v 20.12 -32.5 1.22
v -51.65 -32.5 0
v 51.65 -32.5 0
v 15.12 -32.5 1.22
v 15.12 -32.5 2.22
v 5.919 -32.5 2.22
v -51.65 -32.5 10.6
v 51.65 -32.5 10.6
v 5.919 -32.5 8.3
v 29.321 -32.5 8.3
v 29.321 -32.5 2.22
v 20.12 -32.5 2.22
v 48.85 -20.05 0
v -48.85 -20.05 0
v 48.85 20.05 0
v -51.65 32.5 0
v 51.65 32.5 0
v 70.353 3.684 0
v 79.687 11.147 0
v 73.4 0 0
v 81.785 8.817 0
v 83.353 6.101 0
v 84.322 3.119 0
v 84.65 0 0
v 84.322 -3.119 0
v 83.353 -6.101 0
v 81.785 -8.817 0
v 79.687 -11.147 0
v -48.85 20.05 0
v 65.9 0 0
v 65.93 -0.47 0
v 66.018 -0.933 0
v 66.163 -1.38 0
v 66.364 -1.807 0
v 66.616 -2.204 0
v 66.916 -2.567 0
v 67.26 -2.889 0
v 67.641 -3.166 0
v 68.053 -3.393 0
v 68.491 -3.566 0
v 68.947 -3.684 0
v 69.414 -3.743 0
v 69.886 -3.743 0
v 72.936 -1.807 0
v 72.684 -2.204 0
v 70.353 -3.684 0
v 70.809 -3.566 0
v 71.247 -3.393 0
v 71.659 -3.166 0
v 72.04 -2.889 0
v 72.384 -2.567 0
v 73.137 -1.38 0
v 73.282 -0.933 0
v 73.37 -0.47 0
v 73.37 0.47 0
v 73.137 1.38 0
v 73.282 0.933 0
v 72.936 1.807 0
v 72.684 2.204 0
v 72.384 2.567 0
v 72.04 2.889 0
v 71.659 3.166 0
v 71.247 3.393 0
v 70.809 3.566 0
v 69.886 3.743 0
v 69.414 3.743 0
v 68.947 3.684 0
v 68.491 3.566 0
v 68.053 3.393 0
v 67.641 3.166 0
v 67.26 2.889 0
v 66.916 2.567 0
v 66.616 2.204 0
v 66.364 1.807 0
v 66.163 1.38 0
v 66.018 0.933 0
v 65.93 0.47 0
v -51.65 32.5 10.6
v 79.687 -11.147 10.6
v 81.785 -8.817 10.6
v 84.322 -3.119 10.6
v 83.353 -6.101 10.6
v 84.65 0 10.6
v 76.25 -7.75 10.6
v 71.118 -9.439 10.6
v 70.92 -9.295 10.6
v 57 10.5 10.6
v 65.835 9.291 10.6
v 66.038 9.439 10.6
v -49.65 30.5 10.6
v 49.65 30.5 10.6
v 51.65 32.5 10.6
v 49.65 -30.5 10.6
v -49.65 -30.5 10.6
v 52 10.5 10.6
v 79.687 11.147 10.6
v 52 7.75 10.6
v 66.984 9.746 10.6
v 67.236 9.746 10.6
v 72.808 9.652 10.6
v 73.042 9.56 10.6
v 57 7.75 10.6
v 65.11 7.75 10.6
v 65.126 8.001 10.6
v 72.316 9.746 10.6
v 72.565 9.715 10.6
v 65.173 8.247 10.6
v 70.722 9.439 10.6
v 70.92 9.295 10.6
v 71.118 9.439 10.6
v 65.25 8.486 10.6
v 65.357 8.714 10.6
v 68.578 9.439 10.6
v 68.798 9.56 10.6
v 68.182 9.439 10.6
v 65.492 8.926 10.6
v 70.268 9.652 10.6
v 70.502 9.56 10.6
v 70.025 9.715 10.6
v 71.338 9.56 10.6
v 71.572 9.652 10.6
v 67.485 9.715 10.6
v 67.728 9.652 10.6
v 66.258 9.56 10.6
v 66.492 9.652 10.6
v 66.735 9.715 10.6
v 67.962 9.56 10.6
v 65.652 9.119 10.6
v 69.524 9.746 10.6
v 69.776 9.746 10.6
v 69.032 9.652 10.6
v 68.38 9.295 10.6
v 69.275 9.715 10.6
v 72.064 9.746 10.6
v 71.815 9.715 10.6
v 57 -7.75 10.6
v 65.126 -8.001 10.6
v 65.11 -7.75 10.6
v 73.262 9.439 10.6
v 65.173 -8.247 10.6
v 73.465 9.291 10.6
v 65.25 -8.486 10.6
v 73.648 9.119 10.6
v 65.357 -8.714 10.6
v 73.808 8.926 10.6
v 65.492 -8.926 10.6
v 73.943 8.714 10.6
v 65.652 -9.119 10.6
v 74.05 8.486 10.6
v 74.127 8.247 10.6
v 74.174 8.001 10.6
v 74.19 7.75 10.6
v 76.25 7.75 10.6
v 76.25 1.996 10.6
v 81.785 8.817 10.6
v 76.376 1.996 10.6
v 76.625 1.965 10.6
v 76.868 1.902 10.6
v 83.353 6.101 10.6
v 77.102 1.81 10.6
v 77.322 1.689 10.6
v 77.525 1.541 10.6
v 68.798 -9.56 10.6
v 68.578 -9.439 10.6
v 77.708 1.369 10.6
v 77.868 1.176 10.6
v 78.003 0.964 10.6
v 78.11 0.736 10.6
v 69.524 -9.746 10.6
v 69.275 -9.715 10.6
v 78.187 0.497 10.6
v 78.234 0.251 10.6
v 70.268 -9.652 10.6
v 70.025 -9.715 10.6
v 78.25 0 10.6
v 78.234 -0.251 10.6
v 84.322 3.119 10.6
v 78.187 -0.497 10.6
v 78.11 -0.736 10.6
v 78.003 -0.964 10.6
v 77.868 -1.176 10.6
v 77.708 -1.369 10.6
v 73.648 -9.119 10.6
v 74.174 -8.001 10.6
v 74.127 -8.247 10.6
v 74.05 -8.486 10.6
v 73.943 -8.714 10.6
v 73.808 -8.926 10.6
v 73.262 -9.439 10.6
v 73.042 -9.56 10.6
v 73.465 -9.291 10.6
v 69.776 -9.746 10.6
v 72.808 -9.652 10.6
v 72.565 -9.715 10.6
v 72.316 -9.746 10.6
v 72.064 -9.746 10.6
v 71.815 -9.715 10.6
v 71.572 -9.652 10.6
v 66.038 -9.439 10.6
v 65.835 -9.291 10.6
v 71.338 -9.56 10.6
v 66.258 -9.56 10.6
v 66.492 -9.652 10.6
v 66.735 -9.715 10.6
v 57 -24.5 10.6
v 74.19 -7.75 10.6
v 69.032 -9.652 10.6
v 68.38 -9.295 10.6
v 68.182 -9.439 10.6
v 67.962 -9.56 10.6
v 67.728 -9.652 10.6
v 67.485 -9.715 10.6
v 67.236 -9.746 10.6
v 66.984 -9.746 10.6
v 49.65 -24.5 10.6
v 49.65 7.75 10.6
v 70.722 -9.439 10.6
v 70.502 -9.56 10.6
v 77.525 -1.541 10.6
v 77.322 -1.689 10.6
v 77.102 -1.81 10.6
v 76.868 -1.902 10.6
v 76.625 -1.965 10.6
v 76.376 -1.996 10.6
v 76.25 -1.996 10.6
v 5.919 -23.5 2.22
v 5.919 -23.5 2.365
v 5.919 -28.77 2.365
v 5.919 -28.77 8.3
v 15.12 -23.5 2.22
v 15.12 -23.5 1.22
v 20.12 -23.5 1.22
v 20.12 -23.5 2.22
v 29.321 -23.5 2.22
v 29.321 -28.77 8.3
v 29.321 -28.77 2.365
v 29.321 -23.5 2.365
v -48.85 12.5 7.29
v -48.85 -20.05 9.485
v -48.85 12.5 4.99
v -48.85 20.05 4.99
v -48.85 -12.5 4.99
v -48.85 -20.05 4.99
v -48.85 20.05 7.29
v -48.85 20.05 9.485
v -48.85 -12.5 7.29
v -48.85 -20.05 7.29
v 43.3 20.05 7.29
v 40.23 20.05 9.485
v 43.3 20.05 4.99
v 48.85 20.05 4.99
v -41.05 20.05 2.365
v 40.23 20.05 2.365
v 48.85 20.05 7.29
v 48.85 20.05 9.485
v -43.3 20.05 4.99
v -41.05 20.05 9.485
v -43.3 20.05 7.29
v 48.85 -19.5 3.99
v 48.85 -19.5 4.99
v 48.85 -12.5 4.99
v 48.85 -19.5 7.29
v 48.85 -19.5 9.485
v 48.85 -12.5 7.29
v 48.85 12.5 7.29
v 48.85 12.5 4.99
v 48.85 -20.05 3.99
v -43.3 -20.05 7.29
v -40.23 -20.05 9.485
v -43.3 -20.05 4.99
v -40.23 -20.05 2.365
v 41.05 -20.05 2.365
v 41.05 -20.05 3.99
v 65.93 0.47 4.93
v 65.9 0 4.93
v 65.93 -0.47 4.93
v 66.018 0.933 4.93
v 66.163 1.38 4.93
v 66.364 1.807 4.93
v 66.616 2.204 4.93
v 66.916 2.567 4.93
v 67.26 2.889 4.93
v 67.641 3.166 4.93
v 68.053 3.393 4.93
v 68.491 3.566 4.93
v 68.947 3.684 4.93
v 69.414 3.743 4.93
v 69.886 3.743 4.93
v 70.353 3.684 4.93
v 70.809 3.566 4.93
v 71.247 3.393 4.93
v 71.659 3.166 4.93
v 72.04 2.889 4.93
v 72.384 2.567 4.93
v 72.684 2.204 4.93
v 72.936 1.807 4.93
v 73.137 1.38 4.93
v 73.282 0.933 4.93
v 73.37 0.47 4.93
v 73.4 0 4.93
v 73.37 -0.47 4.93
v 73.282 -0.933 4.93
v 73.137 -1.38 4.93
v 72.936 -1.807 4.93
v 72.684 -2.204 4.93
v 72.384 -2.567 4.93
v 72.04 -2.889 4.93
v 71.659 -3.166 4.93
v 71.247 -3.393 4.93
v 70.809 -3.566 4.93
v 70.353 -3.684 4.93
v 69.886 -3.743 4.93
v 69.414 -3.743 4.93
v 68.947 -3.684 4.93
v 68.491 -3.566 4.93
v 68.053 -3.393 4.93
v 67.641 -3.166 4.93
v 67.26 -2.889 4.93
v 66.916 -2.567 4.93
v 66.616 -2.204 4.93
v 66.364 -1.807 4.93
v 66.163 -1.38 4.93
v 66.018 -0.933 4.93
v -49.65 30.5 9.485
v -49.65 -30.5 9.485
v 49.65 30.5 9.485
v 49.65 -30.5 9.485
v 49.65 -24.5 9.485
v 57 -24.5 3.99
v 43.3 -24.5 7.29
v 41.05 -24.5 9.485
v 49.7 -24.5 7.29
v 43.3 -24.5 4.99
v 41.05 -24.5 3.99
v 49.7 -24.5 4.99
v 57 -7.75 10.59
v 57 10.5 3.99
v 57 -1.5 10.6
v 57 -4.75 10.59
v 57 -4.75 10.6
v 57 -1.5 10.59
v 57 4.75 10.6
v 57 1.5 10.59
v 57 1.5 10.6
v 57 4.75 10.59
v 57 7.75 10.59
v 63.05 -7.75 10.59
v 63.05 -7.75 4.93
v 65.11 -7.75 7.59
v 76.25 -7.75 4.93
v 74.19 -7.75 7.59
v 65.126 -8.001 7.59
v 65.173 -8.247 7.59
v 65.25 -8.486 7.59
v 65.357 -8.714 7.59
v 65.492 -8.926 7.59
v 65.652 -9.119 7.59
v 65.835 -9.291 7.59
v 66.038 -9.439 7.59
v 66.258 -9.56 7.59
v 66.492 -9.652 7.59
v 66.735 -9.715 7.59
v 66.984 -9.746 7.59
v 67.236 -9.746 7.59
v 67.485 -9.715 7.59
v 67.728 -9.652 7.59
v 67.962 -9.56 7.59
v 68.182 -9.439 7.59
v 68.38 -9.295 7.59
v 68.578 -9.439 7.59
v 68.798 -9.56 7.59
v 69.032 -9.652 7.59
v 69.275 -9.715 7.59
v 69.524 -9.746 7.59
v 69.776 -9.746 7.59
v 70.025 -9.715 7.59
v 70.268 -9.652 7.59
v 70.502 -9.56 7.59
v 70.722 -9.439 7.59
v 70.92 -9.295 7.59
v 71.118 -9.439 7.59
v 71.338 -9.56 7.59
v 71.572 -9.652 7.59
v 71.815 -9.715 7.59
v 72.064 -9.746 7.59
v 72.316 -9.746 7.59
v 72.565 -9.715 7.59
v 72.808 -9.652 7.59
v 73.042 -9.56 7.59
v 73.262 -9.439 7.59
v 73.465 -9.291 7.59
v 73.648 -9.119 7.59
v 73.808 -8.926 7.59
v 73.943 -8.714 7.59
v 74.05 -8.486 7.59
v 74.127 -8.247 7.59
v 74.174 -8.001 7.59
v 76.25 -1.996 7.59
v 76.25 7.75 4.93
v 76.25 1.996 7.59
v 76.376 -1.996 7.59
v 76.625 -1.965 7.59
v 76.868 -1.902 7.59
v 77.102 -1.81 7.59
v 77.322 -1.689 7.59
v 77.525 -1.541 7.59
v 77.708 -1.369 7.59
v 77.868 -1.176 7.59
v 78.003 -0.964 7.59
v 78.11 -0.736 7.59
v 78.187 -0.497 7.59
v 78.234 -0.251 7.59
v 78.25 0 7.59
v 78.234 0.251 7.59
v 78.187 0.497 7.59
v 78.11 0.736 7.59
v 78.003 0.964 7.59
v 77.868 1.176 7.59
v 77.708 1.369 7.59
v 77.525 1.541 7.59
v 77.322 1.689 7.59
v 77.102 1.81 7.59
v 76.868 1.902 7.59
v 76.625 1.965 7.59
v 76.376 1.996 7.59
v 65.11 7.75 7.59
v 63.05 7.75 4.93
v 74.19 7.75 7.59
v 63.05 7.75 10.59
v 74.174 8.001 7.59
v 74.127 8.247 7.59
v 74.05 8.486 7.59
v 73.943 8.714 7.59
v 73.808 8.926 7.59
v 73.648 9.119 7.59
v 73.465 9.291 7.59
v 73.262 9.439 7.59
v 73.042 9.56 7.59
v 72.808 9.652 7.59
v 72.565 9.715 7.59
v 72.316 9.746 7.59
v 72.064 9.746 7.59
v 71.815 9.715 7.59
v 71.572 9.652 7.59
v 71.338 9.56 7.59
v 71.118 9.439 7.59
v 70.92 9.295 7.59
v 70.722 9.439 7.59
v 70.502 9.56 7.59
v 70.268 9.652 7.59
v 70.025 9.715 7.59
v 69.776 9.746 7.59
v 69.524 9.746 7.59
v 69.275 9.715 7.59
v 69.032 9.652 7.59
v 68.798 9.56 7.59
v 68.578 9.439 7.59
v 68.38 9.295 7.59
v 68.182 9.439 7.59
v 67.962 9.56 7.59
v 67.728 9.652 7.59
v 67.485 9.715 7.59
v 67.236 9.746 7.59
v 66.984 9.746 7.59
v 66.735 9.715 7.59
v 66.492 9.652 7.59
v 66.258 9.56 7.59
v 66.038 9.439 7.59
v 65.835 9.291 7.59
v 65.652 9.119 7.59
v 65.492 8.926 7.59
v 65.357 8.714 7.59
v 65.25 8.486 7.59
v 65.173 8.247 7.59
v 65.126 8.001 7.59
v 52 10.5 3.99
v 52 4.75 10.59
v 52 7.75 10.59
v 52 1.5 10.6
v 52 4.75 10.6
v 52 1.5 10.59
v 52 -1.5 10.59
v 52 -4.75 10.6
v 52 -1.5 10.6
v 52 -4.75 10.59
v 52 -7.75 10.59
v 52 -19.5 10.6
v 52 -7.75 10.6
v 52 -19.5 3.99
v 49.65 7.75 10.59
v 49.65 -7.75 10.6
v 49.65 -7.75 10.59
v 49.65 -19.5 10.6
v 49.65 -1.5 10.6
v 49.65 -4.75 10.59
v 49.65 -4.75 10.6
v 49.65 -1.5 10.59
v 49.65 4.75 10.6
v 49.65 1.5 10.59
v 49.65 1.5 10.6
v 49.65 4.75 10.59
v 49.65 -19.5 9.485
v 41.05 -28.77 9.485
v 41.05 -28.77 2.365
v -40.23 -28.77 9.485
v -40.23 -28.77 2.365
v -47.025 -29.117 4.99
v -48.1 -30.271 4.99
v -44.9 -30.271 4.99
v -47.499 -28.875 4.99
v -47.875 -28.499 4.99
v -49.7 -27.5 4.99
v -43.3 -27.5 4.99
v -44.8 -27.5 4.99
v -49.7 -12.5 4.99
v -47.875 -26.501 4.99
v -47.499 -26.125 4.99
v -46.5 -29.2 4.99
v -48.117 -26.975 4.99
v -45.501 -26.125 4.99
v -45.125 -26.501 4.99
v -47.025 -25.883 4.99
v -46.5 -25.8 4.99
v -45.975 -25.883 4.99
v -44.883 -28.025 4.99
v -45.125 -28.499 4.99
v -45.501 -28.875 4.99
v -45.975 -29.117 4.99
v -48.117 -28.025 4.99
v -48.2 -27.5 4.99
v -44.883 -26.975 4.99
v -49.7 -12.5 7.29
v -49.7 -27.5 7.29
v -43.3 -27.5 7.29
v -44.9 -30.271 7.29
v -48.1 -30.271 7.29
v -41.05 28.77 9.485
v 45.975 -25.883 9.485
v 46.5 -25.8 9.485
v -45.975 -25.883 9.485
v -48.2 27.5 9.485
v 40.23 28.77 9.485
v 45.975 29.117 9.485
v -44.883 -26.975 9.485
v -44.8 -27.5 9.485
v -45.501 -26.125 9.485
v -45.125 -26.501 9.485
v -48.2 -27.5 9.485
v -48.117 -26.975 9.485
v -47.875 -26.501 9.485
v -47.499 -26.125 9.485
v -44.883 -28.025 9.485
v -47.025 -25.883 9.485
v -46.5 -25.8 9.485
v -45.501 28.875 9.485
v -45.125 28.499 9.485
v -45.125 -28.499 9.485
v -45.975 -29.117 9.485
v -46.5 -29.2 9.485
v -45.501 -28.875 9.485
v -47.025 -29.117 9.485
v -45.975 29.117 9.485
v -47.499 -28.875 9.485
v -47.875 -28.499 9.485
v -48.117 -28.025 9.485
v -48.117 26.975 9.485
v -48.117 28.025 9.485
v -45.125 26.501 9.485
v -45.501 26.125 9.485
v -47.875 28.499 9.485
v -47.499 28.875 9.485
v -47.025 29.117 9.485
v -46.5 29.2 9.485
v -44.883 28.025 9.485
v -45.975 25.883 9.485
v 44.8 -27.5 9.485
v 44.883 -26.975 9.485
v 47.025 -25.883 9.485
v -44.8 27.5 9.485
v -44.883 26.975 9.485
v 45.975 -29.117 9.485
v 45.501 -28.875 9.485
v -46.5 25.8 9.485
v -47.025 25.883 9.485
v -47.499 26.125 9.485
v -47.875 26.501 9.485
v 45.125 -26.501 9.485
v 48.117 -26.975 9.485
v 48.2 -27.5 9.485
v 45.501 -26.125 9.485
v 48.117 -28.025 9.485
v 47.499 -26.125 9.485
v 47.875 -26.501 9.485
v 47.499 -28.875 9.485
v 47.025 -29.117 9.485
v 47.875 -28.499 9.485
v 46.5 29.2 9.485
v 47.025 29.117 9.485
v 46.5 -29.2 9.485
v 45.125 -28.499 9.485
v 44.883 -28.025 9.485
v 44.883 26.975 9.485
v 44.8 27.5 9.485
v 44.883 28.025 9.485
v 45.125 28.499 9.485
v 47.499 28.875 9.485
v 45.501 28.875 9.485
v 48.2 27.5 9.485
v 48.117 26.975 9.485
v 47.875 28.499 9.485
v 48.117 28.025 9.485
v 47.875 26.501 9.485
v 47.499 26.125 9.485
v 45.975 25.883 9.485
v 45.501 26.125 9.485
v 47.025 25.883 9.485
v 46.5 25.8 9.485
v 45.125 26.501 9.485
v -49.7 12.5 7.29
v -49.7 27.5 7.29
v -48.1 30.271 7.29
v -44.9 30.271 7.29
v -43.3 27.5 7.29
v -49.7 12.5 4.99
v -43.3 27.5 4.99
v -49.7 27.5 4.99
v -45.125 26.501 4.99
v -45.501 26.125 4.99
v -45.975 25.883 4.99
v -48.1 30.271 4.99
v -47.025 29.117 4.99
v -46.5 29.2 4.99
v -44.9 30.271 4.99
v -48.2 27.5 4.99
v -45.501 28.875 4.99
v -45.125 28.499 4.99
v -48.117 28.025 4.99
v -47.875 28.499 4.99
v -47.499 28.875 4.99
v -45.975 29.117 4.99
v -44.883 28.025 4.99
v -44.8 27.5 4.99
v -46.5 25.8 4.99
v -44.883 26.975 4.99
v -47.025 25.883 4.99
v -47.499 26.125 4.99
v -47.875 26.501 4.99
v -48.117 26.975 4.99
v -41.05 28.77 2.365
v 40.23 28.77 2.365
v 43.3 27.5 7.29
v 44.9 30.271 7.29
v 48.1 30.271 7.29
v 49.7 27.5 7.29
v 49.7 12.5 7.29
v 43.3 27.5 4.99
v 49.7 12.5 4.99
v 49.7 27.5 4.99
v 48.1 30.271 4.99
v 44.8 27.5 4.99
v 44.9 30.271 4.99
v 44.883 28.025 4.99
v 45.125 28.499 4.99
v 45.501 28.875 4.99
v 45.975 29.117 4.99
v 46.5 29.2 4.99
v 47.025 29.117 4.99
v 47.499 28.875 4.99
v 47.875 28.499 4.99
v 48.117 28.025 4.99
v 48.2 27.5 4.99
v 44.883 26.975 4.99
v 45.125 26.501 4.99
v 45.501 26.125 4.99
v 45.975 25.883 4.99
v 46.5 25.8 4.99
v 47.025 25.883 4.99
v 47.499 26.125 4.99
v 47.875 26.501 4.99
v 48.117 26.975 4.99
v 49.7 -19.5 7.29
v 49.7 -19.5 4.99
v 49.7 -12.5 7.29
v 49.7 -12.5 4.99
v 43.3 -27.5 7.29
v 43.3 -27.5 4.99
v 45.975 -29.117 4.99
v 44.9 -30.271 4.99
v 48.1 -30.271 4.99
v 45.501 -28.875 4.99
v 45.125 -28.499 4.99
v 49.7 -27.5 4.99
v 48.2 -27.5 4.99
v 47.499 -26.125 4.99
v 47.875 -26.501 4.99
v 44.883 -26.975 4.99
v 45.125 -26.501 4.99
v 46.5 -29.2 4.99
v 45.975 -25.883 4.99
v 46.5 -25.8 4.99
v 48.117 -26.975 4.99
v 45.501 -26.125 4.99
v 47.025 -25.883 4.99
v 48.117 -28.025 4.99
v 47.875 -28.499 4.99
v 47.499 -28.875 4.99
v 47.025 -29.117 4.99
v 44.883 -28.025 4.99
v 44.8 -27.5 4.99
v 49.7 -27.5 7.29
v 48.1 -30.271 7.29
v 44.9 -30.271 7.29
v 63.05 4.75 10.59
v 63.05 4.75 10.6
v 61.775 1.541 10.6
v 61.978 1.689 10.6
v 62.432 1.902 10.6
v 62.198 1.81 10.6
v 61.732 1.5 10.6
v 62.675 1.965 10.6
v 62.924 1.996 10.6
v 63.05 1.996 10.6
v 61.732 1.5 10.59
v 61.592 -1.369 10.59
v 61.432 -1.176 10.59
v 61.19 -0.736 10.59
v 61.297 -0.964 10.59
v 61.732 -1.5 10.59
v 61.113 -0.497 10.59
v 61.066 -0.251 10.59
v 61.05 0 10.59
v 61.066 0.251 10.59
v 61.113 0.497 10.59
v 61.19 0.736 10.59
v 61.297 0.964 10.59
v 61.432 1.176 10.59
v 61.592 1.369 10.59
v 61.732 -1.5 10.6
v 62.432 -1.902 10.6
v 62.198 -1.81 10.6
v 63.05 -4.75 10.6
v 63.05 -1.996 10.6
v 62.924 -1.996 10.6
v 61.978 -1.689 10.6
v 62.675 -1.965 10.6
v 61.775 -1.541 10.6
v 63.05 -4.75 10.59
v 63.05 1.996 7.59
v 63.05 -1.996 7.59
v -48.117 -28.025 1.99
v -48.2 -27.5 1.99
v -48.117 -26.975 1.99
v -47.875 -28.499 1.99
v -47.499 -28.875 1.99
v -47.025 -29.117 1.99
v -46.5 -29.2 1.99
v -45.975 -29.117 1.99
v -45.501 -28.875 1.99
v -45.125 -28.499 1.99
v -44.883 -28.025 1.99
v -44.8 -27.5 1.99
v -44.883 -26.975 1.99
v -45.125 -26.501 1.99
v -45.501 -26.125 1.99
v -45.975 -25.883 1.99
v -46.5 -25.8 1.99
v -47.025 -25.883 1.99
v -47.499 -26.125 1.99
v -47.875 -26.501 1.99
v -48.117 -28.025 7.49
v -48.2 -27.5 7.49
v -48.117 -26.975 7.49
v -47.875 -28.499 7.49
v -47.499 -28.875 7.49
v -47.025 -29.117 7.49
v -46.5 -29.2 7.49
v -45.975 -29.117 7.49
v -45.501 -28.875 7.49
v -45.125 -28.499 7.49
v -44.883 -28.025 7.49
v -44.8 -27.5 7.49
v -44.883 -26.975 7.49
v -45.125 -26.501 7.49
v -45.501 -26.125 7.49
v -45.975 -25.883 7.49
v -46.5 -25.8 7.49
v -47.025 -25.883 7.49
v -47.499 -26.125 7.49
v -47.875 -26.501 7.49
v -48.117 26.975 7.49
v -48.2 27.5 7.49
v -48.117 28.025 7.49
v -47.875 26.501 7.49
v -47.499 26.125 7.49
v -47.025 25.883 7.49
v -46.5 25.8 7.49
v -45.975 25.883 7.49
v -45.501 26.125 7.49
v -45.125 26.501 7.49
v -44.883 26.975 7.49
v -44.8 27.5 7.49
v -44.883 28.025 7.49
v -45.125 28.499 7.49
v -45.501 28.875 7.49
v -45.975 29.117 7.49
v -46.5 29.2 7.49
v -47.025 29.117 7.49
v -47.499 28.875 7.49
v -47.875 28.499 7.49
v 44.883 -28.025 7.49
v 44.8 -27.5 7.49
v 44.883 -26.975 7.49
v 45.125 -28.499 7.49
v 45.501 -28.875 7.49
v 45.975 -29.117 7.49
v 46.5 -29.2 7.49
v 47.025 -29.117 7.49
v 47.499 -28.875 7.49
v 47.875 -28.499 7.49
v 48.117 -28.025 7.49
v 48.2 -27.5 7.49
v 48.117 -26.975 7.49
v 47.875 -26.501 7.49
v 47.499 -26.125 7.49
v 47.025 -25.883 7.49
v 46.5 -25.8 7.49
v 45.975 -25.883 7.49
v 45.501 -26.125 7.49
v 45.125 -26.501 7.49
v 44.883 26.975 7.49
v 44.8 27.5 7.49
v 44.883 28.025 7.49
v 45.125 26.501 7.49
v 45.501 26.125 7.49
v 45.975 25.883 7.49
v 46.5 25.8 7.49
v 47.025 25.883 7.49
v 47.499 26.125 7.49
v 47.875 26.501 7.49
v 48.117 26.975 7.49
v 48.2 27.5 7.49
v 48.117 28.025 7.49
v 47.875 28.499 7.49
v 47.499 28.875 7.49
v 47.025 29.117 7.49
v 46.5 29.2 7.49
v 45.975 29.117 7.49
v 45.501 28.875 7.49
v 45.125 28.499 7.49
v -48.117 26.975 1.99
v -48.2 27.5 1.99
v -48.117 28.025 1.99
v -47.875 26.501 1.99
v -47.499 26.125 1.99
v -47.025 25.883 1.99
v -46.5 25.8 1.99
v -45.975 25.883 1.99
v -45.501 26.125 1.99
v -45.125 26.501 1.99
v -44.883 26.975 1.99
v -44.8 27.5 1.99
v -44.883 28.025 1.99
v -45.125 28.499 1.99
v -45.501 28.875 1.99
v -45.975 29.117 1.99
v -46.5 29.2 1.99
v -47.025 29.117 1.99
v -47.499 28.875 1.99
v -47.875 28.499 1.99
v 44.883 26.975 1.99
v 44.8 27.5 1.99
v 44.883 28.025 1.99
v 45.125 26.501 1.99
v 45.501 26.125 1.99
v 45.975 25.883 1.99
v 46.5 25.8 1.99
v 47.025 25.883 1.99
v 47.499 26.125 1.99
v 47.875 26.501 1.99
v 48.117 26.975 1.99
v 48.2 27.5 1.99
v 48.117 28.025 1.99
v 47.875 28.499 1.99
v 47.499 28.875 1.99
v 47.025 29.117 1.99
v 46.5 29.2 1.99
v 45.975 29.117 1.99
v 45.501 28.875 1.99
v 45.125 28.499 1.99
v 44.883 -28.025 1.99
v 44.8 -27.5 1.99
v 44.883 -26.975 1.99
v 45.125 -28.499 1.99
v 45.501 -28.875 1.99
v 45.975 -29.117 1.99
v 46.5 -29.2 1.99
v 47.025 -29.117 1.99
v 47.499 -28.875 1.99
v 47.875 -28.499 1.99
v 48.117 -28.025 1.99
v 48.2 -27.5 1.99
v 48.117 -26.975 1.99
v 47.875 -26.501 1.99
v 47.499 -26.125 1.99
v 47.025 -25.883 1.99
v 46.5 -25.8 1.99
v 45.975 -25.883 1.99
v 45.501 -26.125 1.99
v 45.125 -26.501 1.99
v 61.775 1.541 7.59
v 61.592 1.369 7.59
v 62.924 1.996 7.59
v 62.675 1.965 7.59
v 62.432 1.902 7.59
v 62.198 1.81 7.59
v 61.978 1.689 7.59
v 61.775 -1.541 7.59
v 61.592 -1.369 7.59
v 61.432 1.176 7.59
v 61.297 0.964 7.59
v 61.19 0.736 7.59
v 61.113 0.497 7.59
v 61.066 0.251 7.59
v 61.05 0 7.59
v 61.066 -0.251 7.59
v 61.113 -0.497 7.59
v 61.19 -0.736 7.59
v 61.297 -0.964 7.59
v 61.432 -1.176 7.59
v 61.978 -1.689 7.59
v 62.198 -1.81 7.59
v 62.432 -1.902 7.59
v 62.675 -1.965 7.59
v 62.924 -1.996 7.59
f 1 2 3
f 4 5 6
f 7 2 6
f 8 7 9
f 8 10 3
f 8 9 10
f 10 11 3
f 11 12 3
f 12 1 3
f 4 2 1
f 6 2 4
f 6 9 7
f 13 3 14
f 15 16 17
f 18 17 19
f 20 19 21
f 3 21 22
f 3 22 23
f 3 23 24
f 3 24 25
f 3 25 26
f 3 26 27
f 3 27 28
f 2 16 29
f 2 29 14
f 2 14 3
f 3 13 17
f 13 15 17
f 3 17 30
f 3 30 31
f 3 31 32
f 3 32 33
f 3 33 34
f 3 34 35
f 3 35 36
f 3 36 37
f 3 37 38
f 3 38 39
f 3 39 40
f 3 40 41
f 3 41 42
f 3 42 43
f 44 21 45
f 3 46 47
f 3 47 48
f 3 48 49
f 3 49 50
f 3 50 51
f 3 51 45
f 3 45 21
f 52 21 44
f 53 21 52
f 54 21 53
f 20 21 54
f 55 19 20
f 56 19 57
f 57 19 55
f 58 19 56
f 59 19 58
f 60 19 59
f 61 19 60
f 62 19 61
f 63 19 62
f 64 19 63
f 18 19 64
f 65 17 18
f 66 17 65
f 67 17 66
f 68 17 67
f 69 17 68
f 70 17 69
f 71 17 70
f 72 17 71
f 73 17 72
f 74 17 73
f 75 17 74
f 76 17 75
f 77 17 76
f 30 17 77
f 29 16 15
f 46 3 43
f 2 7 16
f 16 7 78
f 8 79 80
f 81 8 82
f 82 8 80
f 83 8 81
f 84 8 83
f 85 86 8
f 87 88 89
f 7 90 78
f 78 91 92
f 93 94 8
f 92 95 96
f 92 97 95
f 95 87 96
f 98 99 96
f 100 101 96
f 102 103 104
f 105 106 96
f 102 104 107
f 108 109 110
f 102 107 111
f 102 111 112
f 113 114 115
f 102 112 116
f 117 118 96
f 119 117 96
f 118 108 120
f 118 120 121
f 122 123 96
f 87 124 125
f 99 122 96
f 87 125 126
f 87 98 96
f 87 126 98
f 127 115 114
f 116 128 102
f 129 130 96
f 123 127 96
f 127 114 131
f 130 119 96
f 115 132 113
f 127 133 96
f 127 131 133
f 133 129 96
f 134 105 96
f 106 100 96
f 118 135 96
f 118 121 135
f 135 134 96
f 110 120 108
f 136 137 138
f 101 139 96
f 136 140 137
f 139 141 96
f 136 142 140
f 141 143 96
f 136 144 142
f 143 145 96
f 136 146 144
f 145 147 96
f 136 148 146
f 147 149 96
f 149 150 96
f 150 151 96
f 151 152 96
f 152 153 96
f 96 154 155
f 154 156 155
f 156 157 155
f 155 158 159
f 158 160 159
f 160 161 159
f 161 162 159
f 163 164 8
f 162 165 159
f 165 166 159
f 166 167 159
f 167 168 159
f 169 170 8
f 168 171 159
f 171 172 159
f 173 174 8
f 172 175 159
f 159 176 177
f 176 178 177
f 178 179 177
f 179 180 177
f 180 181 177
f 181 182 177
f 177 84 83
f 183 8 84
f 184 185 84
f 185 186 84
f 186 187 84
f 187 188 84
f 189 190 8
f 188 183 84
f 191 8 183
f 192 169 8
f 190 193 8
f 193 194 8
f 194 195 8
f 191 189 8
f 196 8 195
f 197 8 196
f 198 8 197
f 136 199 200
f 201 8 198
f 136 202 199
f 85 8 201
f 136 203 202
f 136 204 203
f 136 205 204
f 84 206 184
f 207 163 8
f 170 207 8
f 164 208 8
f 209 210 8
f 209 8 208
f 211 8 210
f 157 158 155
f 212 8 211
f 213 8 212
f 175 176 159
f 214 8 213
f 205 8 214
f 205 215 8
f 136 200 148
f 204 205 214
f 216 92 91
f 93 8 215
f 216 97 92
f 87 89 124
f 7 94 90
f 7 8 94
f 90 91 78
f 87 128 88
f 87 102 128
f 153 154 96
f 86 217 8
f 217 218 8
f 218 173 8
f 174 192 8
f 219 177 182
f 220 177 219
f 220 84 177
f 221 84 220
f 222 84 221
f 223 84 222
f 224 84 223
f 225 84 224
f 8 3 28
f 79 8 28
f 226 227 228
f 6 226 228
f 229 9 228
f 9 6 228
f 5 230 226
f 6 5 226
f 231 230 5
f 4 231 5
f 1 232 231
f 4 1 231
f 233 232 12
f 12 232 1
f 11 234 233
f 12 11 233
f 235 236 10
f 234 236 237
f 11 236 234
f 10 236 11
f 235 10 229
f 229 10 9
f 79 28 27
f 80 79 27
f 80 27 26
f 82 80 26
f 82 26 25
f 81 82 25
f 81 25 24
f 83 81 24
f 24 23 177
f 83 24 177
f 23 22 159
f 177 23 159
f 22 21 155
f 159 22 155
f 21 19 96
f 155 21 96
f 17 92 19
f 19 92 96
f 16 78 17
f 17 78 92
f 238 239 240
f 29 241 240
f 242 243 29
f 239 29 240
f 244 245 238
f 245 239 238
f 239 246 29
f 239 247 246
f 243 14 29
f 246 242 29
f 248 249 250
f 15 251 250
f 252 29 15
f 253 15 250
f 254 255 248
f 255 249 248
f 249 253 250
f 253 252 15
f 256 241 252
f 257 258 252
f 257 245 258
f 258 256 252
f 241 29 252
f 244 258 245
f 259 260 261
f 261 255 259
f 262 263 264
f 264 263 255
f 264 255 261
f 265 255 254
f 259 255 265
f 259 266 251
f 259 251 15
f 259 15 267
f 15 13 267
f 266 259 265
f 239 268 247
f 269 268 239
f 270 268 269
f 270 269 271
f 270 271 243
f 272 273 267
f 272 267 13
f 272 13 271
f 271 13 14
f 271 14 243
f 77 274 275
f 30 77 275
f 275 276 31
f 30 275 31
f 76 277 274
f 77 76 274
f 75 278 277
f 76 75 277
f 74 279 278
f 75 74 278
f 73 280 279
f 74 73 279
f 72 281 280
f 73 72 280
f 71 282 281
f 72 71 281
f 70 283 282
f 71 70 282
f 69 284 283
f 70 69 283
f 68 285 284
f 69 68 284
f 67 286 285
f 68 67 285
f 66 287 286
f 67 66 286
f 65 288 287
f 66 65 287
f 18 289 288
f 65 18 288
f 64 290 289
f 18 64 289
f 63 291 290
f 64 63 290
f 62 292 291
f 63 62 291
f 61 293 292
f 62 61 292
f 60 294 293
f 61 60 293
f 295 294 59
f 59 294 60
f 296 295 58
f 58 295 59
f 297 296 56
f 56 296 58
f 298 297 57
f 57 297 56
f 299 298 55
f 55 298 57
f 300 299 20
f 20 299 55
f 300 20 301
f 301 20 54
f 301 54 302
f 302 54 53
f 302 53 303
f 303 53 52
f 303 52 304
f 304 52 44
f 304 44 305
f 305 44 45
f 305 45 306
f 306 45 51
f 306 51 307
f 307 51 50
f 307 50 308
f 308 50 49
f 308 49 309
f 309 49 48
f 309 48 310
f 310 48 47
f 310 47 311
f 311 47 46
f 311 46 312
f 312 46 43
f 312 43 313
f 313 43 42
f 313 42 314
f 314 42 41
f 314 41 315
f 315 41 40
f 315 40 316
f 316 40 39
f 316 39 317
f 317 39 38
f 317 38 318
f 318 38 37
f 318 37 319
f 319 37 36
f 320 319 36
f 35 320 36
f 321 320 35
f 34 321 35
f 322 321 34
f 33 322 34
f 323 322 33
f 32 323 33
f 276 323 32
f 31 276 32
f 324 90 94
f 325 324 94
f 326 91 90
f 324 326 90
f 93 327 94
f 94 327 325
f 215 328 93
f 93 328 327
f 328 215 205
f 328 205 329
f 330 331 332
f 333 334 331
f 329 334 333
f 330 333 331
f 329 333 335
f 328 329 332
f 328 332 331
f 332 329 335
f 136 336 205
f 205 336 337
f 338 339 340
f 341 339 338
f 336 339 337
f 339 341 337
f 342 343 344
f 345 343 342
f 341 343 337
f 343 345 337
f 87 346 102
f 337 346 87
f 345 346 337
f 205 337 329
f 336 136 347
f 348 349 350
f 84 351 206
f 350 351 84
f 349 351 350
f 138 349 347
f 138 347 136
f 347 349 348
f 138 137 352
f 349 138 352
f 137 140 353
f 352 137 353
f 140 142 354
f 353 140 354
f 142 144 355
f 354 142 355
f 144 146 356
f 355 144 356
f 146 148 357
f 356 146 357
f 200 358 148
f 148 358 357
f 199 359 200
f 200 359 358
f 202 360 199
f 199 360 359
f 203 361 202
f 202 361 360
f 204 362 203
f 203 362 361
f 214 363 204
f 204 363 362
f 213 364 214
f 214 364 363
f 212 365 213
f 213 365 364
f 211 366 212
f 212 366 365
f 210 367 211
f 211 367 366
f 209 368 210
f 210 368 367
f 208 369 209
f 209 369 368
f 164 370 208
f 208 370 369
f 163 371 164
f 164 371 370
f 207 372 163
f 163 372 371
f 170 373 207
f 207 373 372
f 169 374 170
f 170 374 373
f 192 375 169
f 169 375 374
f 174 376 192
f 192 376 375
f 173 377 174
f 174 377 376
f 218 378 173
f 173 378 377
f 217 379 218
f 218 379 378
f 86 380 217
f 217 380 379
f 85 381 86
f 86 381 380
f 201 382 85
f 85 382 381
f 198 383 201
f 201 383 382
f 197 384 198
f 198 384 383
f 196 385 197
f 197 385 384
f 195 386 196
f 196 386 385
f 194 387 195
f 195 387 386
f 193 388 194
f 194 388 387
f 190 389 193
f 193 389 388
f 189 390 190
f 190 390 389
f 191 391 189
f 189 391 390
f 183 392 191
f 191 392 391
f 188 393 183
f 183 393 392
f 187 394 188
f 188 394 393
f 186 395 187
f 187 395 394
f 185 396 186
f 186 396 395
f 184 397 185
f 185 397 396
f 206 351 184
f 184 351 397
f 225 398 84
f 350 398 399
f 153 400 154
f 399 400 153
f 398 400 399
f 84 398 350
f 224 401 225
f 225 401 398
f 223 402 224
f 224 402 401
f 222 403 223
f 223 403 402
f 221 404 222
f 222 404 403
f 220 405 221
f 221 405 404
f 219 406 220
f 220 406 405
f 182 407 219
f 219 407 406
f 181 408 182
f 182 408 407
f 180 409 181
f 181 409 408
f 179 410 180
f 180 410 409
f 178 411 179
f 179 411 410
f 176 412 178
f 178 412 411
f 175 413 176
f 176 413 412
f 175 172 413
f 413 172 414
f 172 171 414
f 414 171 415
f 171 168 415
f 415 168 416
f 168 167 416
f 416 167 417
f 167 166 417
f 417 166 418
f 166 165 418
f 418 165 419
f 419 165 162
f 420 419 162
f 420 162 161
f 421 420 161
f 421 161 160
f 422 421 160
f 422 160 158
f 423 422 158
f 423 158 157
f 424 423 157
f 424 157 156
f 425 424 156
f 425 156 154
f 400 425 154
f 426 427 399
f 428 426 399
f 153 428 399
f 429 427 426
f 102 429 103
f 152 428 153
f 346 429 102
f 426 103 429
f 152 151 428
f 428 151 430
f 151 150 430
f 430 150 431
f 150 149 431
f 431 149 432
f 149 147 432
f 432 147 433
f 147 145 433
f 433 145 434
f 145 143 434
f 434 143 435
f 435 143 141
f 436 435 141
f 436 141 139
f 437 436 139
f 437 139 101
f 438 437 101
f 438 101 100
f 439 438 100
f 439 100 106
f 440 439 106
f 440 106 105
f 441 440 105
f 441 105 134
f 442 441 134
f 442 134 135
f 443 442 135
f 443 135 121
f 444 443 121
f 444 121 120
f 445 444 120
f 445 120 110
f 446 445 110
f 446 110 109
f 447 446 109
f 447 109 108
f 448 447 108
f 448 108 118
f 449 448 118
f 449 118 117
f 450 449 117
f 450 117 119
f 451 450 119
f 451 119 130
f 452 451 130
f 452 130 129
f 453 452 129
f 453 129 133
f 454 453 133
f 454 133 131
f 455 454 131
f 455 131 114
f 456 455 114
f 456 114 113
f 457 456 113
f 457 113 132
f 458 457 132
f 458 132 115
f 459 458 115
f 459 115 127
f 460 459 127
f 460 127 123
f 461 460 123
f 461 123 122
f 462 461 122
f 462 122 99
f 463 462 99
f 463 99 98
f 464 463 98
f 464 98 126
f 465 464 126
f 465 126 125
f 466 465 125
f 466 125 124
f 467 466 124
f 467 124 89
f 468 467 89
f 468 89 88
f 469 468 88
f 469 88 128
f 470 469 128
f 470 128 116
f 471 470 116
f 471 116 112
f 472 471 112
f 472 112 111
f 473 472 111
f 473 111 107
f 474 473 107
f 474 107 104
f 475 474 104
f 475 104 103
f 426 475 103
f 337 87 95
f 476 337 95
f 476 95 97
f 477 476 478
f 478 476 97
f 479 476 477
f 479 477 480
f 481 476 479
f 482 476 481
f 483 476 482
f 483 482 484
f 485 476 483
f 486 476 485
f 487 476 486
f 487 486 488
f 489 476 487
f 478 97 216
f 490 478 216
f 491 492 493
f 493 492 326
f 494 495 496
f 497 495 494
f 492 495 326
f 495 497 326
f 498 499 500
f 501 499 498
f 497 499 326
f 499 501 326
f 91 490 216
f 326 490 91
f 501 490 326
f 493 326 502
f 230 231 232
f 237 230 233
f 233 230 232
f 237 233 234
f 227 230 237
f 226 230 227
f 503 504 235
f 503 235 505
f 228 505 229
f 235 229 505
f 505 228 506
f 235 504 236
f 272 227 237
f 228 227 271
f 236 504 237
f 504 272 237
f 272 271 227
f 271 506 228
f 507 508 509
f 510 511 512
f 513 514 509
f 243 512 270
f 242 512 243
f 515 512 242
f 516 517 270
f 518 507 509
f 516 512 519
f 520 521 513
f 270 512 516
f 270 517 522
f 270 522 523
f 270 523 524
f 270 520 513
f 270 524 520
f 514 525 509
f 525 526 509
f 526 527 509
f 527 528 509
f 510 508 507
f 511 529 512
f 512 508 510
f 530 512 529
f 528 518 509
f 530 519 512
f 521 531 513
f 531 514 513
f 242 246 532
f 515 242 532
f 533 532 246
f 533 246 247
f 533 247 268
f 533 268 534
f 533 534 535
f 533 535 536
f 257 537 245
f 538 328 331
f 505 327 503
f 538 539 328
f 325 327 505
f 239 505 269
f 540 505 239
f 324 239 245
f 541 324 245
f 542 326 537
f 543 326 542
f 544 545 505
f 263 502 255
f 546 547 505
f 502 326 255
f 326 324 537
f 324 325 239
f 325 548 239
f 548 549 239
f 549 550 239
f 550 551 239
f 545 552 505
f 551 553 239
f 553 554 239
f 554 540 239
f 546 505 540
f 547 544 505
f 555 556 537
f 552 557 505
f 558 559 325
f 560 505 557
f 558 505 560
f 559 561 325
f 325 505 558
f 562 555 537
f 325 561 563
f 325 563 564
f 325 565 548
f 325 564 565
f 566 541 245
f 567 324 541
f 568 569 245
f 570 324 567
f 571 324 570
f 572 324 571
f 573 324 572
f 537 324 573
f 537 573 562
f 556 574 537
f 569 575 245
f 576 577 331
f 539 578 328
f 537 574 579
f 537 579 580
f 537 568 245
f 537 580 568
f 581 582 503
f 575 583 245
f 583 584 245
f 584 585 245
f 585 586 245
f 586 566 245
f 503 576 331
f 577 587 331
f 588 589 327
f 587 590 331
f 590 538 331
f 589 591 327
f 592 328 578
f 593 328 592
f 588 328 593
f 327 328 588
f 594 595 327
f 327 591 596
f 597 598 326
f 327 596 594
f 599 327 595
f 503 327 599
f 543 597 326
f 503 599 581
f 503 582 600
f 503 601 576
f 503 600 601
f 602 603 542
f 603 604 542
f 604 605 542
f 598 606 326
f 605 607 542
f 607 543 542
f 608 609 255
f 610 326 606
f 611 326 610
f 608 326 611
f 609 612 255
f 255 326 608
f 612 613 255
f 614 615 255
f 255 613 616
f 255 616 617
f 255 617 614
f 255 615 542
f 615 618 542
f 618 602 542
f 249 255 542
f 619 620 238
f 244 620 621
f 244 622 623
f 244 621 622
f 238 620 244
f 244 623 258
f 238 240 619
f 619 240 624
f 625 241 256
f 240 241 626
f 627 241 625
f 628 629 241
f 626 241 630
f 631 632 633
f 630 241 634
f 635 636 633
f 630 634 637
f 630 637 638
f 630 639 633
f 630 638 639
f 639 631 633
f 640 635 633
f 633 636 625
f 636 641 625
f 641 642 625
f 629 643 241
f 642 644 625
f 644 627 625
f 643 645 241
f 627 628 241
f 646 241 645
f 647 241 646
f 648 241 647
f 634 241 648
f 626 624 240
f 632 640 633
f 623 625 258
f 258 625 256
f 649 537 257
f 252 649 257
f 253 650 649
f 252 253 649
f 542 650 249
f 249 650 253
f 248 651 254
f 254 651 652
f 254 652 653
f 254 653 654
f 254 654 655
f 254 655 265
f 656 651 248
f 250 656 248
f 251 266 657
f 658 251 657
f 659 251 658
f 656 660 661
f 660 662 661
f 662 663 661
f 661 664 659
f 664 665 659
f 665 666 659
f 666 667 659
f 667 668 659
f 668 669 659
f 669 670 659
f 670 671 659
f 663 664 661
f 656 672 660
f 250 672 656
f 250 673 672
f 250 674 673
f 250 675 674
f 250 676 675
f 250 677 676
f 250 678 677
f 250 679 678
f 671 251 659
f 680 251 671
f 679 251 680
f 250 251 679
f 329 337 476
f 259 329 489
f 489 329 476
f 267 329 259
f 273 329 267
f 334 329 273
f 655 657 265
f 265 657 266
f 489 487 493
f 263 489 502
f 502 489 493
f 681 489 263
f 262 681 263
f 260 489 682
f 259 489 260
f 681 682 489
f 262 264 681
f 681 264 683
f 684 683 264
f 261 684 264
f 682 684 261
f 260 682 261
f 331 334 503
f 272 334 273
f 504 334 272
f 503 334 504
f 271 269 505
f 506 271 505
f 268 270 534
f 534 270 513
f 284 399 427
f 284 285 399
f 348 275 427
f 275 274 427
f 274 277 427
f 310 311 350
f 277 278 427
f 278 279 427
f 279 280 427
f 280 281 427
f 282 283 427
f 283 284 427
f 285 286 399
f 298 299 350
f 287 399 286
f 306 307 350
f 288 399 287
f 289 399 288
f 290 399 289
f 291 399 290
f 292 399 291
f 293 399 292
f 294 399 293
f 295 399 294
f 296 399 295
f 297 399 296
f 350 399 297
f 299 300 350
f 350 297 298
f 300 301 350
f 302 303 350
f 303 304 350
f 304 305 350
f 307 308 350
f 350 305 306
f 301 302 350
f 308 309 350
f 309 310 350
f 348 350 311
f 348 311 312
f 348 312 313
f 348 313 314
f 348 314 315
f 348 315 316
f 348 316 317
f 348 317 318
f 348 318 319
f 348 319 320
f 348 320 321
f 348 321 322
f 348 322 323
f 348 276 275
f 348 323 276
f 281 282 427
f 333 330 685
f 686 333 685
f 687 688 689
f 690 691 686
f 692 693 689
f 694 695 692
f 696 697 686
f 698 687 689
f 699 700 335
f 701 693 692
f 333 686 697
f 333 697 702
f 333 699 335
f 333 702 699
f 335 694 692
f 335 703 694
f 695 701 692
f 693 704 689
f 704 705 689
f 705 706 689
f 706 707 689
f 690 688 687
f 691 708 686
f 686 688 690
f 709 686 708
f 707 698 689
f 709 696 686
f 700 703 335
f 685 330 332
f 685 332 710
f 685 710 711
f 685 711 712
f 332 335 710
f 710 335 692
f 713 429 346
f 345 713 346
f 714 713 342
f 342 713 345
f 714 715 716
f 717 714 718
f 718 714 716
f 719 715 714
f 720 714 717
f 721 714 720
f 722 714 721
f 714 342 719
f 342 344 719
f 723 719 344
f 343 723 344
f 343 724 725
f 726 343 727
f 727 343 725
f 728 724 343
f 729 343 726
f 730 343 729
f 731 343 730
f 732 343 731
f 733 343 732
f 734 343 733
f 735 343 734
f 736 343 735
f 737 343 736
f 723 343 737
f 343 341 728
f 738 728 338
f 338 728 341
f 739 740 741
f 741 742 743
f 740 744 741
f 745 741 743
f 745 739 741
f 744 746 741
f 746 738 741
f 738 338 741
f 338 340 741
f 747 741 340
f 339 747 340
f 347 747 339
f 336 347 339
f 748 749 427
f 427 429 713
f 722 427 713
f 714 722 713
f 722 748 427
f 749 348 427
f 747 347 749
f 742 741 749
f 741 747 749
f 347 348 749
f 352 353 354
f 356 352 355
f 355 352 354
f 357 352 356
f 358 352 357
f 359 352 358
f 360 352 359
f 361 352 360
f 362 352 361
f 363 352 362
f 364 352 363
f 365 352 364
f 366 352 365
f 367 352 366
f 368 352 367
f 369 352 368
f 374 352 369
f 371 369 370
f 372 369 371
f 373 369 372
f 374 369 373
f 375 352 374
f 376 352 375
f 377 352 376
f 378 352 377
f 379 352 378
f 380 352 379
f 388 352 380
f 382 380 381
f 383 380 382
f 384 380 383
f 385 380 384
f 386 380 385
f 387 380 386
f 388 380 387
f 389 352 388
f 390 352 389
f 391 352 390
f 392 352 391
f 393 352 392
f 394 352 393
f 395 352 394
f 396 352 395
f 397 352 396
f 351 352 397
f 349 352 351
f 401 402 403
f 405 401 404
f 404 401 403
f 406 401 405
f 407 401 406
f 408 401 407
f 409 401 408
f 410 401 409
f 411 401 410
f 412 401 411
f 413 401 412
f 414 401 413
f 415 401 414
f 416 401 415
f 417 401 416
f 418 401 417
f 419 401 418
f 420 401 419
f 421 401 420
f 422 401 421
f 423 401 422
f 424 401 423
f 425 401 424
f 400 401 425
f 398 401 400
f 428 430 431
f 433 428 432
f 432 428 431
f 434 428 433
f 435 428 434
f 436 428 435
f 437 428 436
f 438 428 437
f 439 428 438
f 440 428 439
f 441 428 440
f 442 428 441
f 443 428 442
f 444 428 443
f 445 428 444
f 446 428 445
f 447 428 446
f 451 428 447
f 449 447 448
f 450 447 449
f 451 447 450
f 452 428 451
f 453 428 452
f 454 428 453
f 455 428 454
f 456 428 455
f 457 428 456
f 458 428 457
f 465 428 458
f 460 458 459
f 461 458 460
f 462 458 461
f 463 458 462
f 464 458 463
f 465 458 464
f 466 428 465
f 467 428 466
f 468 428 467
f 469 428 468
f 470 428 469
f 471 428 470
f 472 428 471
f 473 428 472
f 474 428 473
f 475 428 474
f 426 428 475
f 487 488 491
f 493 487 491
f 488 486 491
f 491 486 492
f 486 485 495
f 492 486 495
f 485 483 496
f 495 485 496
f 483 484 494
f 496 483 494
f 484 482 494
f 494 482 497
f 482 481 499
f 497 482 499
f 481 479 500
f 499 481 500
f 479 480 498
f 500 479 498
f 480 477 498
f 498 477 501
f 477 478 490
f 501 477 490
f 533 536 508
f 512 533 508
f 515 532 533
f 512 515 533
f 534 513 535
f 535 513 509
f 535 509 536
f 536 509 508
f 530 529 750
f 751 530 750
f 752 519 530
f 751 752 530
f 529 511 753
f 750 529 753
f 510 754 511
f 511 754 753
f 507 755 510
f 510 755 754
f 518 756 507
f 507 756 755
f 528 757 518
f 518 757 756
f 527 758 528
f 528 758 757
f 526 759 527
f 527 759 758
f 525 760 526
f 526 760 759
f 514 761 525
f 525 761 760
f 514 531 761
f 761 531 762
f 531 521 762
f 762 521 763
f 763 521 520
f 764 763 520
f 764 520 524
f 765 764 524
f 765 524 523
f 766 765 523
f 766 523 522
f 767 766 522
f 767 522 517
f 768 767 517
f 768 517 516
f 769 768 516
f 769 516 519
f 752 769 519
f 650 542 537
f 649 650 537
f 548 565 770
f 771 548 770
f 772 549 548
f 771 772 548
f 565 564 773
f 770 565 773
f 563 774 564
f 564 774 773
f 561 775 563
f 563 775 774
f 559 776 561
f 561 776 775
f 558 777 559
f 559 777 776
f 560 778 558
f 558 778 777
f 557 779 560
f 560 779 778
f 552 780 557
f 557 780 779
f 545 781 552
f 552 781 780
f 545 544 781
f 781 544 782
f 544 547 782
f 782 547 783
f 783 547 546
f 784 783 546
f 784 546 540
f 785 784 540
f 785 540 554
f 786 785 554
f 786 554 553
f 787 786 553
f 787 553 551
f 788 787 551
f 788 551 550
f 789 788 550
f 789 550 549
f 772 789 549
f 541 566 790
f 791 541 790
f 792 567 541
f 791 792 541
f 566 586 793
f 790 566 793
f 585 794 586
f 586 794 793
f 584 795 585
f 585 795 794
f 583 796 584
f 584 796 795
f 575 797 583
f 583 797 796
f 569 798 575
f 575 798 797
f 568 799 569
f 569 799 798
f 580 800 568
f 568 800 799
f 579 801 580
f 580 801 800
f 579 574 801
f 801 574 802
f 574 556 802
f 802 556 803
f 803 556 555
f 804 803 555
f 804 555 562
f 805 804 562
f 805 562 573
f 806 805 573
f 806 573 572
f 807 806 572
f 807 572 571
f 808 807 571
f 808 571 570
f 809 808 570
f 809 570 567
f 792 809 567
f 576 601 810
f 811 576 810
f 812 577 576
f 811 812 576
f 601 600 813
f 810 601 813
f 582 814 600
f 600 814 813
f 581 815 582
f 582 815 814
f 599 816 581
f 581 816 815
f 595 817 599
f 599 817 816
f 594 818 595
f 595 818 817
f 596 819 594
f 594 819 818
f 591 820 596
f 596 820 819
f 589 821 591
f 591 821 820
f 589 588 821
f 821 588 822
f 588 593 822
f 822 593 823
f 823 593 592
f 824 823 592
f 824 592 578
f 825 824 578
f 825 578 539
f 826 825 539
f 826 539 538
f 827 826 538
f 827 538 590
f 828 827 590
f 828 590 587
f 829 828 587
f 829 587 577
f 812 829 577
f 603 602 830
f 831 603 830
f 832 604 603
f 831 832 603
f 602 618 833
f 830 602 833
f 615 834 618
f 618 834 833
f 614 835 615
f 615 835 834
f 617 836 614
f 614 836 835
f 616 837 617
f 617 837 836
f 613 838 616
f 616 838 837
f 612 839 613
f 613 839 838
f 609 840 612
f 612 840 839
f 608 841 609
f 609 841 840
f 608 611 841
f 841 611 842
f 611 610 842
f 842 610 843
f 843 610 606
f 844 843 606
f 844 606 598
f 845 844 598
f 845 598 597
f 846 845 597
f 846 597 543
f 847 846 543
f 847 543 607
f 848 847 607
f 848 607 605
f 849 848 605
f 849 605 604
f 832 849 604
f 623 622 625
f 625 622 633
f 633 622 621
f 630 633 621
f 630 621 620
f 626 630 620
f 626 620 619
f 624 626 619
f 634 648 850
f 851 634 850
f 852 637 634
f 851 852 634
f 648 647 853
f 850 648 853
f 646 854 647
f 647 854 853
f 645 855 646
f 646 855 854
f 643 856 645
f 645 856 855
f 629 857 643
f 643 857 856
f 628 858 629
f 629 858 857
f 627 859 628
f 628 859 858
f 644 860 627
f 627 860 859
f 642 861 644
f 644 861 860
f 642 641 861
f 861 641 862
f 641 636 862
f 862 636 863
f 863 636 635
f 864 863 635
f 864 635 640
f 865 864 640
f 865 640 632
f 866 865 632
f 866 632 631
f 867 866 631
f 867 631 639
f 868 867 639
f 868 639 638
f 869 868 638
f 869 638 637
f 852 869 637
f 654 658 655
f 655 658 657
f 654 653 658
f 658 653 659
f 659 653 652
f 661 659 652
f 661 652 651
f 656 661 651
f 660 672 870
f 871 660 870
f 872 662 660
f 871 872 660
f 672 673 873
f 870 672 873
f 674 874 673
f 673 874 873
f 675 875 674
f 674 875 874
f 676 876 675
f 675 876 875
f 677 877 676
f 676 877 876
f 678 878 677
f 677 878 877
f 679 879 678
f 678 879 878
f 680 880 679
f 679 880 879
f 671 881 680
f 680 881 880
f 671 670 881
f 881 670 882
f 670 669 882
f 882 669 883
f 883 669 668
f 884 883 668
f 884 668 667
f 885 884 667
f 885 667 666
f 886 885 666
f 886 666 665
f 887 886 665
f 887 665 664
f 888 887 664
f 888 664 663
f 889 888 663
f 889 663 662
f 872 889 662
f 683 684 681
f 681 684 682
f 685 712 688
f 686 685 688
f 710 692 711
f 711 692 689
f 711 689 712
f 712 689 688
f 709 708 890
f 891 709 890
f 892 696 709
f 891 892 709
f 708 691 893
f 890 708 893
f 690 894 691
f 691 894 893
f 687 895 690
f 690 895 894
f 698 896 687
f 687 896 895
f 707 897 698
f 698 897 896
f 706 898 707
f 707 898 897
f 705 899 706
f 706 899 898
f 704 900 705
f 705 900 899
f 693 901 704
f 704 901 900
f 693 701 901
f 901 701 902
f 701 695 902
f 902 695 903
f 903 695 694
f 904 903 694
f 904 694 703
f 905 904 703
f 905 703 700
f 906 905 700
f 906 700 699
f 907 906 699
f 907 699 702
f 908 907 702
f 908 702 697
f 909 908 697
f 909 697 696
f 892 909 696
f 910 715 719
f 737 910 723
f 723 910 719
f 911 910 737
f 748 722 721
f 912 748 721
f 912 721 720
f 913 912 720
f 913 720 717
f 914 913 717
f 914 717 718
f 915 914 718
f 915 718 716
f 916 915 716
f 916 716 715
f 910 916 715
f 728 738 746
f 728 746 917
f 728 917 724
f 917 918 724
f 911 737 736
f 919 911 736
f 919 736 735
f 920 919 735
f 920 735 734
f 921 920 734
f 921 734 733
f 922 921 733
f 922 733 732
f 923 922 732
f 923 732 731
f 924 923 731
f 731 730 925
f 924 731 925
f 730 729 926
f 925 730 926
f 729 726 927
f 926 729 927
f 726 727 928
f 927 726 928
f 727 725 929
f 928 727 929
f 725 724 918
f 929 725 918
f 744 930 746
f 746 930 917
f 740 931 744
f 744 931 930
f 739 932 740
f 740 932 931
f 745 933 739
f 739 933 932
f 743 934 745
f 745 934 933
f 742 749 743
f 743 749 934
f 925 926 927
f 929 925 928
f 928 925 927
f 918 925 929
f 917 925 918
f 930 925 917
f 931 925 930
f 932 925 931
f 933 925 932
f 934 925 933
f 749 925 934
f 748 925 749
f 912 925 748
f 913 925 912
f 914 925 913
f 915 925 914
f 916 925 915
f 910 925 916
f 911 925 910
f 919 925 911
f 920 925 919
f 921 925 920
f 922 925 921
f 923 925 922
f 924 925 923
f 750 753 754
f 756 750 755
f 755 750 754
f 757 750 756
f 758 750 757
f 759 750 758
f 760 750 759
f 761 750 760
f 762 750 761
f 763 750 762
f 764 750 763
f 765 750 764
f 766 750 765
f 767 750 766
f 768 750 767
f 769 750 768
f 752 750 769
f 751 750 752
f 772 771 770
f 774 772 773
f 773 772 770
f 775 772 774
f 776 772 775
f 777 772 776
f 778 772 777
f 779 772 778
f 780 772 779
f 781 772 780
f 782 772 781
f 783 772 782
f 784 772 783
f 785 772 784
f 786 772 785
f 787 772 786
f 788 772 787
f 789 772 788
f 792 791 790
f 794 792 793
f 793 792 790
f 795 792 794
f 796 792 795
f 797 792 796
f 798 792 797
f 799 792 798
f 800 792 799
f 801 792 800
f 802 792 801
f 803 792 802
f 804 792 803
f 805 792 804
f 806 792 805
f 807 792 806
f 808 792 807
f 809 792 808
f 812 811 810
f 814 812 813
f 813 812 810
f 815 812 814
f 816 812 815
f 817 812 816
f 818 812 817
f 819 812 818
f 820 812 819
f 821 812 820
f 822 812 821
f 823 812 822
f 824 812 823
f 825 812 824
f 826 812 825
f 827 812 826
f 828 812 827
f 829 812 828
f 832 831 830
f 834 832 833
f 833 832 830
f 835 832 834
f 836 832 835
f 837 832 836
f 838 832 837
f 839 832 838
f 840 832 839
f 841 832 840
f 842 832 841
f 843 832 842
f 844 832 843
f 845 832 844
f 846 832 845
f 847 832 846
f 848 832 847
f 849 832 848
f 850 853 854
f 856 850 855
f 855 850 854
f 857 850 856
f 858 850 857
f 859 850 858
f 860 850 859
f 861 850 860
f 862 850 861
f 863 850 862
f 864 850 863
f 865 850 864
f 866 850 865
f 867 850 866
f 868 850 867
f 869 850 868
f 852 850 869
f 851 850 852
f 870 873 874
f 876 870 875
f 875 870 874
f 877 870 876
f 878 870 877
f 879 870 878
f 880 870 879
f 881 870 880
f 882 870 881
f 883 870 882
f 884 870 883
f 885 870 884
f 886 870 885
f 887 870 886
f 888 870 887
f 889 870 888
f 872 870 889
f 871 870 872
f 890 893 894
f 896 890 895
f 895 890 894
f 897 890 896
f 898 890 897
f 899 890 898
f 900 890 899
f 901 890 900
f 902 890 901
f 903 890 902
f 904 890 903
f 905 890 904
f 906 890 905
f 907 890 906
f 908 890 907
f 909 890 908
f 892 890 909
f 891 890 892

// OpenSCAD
// file: ../inc/ClickEncoder.scad
encoderHull();

$fn = 50;

encX	= 12.7	+0.5;
encY	= 15	+0.5;
encZ	= 6.6;
tipDia	= 6;
tipCut	= 4.5;
tipLen	= 7;
rodDia	= 7		+0.5;
rodLen	= 6		-1;
pinH	= 7.2	+1;
pinD	= 2		+2;
pinOff	= 4;
pinZ	= rodLen+encZ-pinOff;

function encoderX() = encX;
function encoderY() = encY;
function encoderZ() = encZ+rodLen+pinH-pinOff;


module encoderHull()
{
	cylinder(r=rodDia/2, h=rodLen+1, center=false);
	
	translate([0, 0, -tipLen])
	difference()
	{
		cylinder(r=tipDia/2, h=tipLen+1, center=false);
		
		rotate([0, 0, -70])
		translate([tipDia/2-tipCut, tipDia, -1])
		rotate([0, 0, 180])
		cube([2*tipDia, 2*tipDia, tipLen+1]);
	}

	translate([0, 0, rodLen+encZ/2-0.01])
	cube([encX, encY, encZ+0.1], center = true);
	
	for (iy=[-1, 1])
	{
		for (ix=[-1, 0, 1])
		{
			translate([ix*2.54, iy*encY/2, pinZ])
			cylinder(r=pinD/2, h=pinH, center=false);
		}
	}
	
	for (ix=[-1, 1])
	{
		translate([ix*encX/2, 0, pinZ])
		cylinder(r=pinD/2, h=pinH, center=false);
	}
}
// file: ../inc/Lcd4x20.scad
//lcdPanel();

lcdHull();


lcdPcbX			= 98.3	+1;
lcdPcbY			= 60.0	+1;
lcdPcbZ			=  1.6	+0.5;

lcdFrameX		= 97.2	+0.5;
lcdFrameY		= 39.6	+0.5;
lcdFrameZ		=  9.5;

lcdHoleX		= 93.0;
lcdHoleY		= 55.0;
lcdHoleDia		=  3.4;

lcdWindowX		= 76.0;
lcdWindowY		= 26.0;

lcdRearY		= 45.0;
lcdRearZ		=  2.5;

lcdPinOffset	=  5;
lcdPinDia		=  1;
lcdPins			= 16;

lcdNutDia		= 6.4;//	+0.5;
lcdNutH			= 2.3;//	+0.5;

holesupport	= 0.2;


function lcdX() = lcdPcbX;
function lcdY() = lcdPcbY;
function lcdZ() = lcdFrameZ+lcdPcbZ+lcdRearZ;
function lcdRearZ() = lcdRearZ;
function lcdFramePcb() = lcdFrameZ+lcdPcbZ;
function lcdFrame() = lcdFrameZ;
function lcdPcb() = lcdPcbZ;

module lcdReserved()
{
	translate([0, 0, lcdFrameZ+lcdPcbZ+lcdRearZ/2])
	cube([lcdFrameX, lcdRearY, lcdRearZ+0.01], center=true);
	
	for (i=[0, 1])
	{
		rotate([0, 0, 180]*i)
		translate([lcdHoleX/2-lcdPinOffset-1.27, lcdHoleY/2+1.27, lcdFrameZ/4])
		rotate([0, 0, 180])
		cube([2*lcdPins*2.54, 15, lcdFrameZ/1.5+lcdPcbZ+lcdRearZ]);
	}
}


module lcdPcb()
{
	translate([0, 0, lcdFrameZ+lcdPcbZ/2])
	cube([lcdPcbX, lcdPcbY, lcdPcbZ+0.01], center=true);
}


module lcdFrame()
{
	translate([0, 0, lcdFrameZ/2])
	cube([lcdFrameX, lcdFrameY, lcdFrameZ+0.01], center=true);
}


module lcdHoles()
{
	for (iy=[-1, 1])
	{
		for (ix=[-1, 1])
		{
			translate([ix*lcdHoleX/2, iy*lcdHoleY/2, 2])
			{
				difference()
				{
					cylinder(r=lcdHoleDia/2, h=(lcdRearZ+lcdPcbZ+lcdFrameZ)*2, $fn=20);
					translate([0, 0, 3+lcdNutH])
					cylinder(r=lcdHoleDia , h=holesupport, center=false);
				}
				
				translate([0, 0, 3])
				{
					cylinder(r=lcdNutDia/2, h=lcdNutH, $fn=6);
					
					rotate([0, 0, 90])
					rotate([0, 0, 90]*iy)
					translate([-lcdNutDia/2, 0, 0])
					cube([lcdNutDia/2*2, 15, lcdNutH]);
				}
			}
		}
	}
}


module lcdWindow()
{
	translate([-lcdWindowX/2, -lcdWindowY/2, 1-100])
	cube([lcdWindowX, lcdWindowY, 100]);
}


module lcdPins()
{
	for (i=[1: 1: lcdPins])
	{
		translate([lcdHoleX/2-lcdPinOffset-i*2.54, lcdHoleY/2, lcdFrameZ+lcdPcbZ/2])
		cylinder(r=lcdPinDia/2, h=lcdPcbZ*3, center=true, $fn=10);
	}
}


module lcdLowerNuts(offZ)
{
	for (iy=[-1, 1])
	{
		for (ix=[-1, 1])
		{
			translate([ix*lcdHoleX/2, iy*lcdHoleY/2, offZ-lcdNutH])
			cylinder(r=lcdNutDia/2, h=lcdNutH, $fn=20);
		}
	}
}

module lcdPanel()
{
	difference()
	{
		union()
		{
			lcdPcb();
			
			lcdFrame();
		}
		
		lcdHoles();
		
		lcdPins();
	}
}


module lcdHull()
{
	lcdPcb();	
	
	lcdFrame();
	
	lcdHoles();
	
	lcdReserved();
	
	lcdWindow();
}
// file: ../inc/EasyPanel.scad
use <Lcd4x20.scad>
use <ClickEncoder.scad>



front();

//rear();

//explodedView();

//panelHull();



buttonDist	= 20;
buttonDia	= 15;
wall		= 2;
boxZ		= wall+max(lcdZ(),encoderZ()-wall+1);
cutOffset	= 1;
boxCutZ		= lcdFramePcb()-cutOffset;
wireTray	= 3;
wireWidth	= 14	*1.27;
wireHeight	= 1;

//Pin
module pin(pinwidth, pinlength)
{
	translate([-pinwidth/2, -pinwidth/2, 0])
	cube([pinwidth, pinwidth, pinlength]);
}


//IDC pin header
module IDC(xpins, ypins)
{
plugsxyadd	= 0.5;
grid		= 0.254;	//how many millimeters goes to ten mils (10 mil = 0.01 inch)
plugsz		= 20;

	//outline
	translate([-5*grid-9.1*grid-plugsxyadd, -5*grid-plugsxyadd, 0])
	cube([10*grid*xpins+18.2*grid+2*plugsxyadd, 10*grid*ypins+2*plugsxyadd, plugsz]);

	translate([(xpins-1)*5*grid, -5*grid, plugsz/2])
	cube([4+2*plugsxyadd, 2+2*plugsxyadd, plugsz], center=true);

	translate([(xpins-1)*5*grid, -5*grid, plugsz/2+7])
	cube([10*grid*xpins+2*plugsxyadd, 2+2*plugsxyadd, plugsz-14], center=true);

	//pins
	for(ix=[0:1:xpins-1])
	for(iy=[0:1:ypins-1])
	translate([10*grid*ix, 10*grid*iy, -3])
	pin(0.6, 11);

}


module panelHull()
{
	difference()
	{
		hull()
		{
			translate([0, 0, boxZ/2])
			cube([lcdX()+2*wall, lcdY()+2*wall, boxZ], center=true);

			translate([lcdX()/2+buttonDist, 0, boxZ/2])
			cylinder(r=buttonDia, h=boxZ, center=true);
		}

		translate([0, 0, -0.01])
		union()
		{
			lcdHull();

			//encoder and wire trays
			translate([lcdX()/2+buttonDist, 0, 0])
			{
				encoderHull();
				for (iy=[-1, 0, 1])
				{
					//encoder wire trays
					translate([(encoderX()-(buttonDist+10))/2, iy*(encoderY()-wireTray)/2, boxCutZ+lcdRearZ()/2+cutOffset/2])
					cube([buttonDist+10, wireTray, lcdRearZ()+cutOffset], center=true);
				}
			}

			//old ext. wire hole
//			translate([-lcdX()/2-wall-1, -wireWidth/2, lcdZ()-wireHeight])
//			cube([10+wall, wireWidth, wireHeight]);

			//IDC pin header
			translate([10, -lcdY()/2+7, 4])
			rotate([90, 0, 0])
			IDC(7, 2);

			//wire duct
			translate([39, -lcdY()/2+6, 4])
			cube([15, 5, 10]);
			translate([52, -lcdY()/2+6, 4])
			cube([5, 35, 10]);
		}

		lcdLowerNuts(boxZ+0.01);
	}
}

module front()
{
	difference()
	{
		panelHull();

		//cut away the rear
		translate([0, 0, boxZ/2+boxCutZ])
		cube([200, 200, boxZ], center=true);
	}
}

module rear()
{
	translate([0, 0, boxZ])
	rotate([0, 180, 0])
	difference()
	{
		panelHull();

		//cut away the front
		translate([0, 0, boxCutZ-boxZ/2])
		cube([200, 200, boxZ], center=true);
	}
}

module explodedView()
{
	rear();

%	translate([0, 0, 30])
	rotate([180, 0, 0])
	lcdPanel();

%	translate([-(lcdX()/2+buttonDist), 0, 30])
	rotate([180, 0, 0])
	encoderHull();

	translate([0, 0, 50])
	rotate([0, 180, 0])
	front();
}
// main file
include <../config.scad>
use <../inc/EasyPanel.scad>

front();
